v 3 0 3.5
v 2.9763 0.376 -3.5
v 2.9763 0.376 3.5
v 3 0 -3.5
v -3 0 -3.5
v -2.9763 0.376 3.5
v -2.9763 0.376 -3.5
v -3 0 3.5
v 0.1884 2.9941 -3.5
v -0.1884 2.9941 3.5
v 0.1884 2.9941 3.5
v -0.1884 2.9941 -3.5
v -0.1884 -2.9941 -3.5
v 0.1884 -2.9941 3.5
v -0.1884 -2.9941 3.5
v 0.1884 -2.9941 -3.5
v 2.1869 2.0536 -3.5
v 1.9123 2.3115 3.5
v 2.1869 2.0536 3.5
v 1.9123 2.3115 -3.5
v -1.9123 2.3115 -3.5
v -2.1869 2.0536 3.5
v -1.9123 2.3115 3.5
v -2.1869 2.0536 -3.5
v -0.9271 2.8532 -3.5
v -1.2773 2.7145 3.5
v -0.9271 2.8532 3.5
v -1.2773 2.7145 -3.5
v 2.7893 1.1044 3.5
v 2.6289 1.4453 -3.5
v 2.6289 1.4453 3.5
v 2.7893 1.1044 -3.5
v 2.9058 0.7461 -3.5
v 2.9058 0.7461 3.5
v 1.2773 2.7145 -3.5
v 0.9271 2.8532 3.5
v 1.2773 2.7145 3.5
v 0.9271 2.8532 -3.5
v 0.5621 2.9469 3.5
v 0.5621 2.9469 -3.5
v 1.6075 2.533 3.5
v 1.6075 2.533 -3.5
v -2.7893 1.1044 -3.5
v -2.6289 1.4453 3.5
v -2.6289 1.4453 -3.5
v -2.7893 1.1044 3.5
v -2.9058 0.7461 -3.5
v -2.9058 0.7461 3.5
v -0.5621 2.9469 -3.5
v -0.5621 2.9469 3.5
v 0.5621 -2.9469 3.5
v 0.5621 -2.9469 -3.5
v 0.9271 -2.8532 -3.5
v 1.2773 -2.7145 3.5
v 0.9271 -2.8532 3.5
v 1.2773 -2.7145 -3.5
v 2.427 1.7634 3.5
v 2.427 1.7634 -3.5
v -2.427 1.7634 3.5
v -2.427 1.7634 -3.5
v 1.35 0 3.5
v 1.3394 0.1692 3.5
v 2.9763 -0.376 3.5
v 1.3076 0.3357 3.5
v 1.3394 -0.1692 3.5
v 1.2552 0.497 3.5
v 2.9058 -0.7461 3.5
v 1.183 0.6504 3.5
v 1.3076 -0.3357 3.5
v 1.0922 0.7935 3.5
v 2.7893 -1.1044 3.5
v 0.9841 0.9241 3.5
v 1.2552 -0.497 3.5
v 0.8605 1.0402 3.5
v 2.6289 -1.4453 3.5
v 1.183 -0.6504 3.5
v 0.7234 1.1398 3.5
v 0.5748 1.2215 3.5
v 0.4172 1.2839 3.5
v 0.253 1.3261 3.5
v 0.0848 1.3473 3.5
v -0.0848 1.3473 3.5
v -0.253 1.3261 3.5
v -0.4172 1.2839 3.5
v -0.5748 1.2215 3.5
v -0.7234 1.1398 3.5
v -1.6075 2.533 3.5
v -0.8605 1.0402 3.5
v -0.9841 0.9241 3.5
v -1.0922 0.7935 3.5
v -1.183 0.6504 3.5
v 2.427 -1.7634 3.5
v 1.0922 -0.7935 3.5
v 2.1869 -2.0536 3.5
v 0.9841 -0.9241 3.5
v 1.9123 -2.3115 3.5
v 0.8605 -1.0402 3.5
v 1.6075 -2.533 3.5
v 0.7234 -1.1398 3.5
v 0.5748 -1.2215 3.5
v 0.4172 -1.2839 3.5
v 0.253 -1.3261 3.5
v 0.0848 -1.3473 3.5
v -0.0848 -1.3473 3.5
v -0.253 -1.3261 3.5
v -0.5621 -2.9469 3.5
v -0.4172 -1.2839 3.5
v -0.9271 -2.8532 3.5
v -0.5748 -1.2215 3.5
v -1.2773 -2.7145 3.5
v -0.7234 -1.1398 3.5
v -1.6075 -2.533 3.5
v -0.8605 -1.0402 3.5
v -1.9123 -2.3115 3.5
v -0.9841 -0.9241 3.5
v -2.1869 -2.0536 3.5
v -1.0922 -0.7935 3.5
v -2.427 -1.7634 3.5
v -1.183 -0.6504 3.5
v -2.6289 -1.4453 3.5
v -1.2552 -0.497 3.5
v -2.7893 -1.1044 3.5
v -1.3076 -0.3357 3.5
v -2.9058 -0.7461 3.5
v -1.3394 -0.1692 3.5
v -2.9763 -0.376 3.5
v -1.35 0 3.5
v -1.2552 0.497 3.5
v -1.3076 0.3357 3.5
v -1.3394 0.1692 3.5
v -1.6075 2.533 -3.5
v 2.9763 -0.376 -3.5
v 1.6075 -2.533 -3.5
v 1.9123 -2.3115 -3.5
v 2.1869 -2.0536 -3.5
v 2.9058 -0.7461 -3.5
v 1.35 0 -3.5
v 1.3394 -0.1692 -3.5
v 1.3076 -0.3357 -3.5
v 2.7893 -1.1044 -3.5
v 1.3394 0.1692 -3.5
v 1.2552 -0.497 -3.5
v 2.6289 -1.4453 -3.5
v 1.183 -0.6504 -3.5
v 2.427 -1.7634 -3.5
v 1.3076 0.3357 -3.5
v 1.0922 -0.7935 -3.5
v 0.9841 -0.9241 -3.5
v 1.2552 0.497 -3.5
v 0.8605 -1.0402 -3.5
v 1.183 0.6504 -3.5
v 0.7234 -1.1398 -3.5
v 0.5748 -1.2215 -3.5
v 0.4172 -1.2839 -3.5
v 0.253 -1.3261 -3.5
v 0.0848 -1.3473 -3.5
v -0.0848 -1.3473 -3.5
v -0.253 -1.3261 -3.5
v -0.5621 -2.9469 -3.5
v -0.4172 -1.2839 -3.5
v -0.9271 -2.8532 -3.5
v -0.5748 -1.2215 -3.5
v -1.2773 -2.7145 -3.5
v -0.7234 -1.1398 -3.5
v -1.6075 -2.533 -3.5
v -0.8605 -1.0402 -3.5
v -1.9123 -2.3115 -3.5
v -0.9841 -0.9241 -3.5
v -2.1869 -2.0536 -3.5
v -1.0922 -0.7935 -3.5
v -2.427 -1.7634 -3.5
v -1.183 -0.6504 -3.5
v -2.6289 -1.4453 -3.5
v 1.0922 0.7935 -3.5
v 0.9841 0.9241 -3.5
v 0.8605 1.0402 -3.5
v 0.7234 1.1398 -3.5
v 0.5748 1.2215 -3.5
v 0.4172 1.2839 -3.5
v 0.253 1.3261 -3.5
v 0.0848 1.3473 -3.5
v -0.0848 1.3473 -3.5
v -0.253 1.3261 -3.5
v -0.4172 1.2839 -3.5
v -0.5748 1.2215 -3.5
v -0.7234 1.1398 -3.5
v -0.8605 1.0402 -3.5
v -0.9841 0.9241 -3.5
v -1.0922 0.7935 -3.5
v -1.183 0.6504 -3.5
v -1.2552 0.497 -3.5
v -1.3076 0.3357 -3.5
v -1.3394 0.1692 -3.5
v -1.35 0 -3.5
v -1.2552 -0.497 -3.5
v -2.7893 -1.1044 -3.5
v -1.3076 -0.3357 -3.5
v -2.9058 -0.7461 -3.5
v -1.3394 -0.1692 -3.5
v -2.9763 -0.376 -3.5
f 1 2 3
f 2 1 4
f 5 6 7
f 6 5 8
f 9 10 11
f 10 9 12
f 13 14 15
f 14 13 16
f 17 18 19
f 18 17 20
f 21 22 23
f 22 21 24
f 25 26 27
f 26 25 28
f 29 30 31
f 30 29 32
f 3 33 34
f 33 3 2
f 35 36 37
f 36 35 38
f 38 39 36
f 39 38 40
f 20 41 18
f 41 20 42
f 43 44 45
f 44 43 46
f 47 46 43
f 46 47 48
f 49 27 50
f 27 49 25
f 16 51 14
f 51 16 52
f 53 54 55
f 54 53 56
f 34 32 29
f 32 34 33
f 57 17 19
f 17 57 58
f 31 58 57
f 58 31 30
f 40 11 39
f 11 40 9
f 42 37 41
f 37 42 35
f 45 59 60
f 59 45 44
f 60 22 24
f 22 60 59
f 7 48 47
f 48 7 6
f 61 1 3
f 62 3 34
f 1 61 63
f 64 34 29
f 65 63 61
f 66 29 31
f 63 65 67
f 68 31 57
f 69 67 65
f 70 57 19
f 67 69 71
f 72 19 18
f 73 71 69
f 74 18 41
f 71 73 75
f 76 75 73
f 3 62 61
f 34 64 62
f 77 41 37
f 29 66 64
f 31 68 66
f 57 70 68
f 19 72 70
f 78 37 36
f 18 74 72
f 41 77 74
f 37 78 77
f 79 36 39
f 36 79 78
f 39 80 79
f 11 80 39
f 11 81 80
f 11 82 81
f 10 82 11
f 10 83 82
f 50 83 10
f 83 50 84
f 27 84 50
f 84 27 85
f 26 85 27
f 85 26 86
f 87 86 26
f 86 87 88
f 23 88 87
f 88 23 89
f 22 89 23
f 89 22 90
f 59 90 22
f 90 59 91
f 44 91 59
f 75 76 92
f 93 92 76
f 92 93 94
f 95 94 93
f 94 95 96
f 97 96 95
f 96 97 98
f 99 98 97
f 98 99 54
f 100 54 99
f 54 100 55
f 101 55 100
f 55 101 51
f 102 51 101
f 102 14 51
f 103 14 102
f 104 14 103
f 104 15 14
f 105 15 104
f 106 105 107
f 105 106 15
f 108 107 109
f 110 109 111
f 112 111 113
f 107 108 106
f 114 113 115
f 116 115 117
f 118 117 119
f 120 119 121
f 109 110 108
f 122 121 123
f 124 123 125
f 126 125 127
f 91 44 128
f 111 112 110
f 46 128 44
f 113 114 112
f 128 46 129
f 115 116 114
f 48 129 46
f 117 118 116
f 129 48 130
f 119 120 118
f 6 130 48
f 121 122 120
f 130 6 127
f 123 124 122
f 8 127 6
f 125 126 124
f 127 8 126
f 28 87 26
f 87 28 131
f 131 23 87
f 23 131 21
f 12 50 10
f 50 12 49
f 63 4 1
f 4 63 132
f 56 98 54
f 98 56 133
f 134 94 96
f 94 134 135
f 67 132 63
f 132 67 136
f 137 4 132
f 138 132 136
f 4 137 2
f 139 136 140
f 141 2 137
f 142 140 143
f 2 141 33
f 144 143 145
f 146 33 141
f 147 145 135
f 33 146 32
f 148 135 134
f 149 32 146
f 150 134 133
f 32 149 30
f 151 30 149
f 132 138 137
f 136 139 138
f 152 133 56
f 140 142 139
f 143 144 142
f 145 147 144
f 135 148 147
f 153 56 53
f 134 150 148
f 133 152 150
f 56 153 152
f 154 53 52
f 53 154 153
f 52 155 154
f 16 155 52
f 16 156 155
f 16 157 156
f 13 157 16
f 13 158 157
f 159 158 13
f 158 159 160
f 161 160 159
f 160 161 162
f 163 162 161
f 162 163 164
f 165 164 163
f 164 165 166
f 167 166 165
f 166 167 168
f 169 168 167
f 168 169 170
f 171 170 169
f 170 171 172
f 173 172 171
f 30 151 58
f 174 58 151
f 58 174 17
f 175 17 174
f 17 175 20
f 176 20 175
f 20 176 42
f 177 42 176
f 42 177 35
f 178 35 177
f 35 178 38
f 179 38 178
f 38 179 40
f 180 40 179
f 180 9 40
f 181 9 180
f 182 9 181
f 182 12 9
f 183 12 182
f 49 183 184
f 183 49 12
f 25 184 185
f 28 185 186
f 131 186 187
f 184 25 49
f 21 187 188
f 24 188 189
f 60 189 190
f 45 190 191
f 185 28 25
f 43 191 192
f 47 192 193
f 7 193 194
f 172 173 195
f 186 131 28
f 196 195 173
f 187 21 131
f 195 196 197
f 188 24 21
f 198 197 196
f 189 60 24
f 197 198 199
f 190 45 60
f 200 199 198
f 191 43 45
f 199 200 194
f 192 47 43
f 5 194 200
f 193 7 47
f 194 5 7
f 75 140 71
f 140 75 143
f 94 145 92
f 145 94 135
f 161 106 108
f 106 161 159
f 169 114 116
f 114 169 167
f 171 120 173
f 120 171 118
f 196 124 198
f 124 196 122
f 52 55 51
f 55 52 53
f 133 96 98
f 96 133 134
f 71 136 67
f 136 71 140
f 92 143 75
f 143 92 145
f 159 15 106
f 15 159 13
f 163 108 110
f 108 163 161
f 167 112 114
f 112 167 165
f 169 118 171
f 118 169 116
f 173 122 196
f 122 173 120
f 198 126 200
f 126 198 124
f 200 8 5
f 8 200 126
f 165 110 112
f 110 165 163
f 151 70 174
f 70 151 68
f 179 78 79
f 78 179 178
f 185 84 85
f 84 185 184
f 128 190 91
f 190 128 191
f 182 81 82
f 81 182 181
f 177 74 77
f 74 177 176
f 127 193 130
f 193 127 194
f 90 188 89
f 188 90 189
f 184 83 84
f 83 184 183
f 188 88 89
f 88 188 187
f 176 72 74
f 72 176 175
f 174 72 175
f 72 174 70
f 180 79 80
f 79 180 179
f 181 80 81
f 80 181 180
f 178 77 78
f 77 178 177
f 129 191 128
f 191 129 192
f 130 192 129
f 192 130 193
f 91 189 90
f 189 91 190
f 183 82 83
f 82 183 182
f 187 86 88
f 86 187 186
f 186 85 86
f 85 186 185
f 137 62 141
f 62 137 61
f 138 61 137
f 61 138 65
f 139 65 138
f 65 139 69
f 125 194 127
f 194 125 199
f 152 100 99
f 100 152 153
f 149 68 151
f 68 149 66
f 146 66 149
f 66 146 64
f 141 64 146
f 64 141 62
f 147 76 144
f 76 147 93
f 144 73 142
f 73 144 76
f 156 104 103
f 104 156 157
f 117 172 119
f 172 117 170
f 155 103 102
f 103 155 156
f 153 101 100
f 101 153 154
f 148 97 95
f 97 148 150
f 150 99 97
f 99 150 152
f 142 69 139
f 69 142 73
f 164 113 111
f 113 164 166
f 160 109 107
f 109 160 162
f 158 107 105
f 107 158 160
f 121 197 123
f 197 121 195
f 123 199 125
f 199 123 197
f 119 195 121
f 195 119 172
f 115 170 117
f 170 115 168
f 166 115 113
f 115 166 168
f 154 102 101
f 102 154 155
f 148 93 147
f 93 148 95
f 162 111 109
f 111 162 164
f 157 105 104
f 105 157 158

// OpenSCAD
$fn = 50;


difference() {
	union() {
		translate(v = [0, 0, -3.5000000000]) {
			cylinder(h = 7, r = 3.0000000000);
		}
	}
	union() {
		translate(v = [0, 0, -100.0000000000]) {
			cylinder(h = 200, r = 1.3500000000);
		}
	}
}
